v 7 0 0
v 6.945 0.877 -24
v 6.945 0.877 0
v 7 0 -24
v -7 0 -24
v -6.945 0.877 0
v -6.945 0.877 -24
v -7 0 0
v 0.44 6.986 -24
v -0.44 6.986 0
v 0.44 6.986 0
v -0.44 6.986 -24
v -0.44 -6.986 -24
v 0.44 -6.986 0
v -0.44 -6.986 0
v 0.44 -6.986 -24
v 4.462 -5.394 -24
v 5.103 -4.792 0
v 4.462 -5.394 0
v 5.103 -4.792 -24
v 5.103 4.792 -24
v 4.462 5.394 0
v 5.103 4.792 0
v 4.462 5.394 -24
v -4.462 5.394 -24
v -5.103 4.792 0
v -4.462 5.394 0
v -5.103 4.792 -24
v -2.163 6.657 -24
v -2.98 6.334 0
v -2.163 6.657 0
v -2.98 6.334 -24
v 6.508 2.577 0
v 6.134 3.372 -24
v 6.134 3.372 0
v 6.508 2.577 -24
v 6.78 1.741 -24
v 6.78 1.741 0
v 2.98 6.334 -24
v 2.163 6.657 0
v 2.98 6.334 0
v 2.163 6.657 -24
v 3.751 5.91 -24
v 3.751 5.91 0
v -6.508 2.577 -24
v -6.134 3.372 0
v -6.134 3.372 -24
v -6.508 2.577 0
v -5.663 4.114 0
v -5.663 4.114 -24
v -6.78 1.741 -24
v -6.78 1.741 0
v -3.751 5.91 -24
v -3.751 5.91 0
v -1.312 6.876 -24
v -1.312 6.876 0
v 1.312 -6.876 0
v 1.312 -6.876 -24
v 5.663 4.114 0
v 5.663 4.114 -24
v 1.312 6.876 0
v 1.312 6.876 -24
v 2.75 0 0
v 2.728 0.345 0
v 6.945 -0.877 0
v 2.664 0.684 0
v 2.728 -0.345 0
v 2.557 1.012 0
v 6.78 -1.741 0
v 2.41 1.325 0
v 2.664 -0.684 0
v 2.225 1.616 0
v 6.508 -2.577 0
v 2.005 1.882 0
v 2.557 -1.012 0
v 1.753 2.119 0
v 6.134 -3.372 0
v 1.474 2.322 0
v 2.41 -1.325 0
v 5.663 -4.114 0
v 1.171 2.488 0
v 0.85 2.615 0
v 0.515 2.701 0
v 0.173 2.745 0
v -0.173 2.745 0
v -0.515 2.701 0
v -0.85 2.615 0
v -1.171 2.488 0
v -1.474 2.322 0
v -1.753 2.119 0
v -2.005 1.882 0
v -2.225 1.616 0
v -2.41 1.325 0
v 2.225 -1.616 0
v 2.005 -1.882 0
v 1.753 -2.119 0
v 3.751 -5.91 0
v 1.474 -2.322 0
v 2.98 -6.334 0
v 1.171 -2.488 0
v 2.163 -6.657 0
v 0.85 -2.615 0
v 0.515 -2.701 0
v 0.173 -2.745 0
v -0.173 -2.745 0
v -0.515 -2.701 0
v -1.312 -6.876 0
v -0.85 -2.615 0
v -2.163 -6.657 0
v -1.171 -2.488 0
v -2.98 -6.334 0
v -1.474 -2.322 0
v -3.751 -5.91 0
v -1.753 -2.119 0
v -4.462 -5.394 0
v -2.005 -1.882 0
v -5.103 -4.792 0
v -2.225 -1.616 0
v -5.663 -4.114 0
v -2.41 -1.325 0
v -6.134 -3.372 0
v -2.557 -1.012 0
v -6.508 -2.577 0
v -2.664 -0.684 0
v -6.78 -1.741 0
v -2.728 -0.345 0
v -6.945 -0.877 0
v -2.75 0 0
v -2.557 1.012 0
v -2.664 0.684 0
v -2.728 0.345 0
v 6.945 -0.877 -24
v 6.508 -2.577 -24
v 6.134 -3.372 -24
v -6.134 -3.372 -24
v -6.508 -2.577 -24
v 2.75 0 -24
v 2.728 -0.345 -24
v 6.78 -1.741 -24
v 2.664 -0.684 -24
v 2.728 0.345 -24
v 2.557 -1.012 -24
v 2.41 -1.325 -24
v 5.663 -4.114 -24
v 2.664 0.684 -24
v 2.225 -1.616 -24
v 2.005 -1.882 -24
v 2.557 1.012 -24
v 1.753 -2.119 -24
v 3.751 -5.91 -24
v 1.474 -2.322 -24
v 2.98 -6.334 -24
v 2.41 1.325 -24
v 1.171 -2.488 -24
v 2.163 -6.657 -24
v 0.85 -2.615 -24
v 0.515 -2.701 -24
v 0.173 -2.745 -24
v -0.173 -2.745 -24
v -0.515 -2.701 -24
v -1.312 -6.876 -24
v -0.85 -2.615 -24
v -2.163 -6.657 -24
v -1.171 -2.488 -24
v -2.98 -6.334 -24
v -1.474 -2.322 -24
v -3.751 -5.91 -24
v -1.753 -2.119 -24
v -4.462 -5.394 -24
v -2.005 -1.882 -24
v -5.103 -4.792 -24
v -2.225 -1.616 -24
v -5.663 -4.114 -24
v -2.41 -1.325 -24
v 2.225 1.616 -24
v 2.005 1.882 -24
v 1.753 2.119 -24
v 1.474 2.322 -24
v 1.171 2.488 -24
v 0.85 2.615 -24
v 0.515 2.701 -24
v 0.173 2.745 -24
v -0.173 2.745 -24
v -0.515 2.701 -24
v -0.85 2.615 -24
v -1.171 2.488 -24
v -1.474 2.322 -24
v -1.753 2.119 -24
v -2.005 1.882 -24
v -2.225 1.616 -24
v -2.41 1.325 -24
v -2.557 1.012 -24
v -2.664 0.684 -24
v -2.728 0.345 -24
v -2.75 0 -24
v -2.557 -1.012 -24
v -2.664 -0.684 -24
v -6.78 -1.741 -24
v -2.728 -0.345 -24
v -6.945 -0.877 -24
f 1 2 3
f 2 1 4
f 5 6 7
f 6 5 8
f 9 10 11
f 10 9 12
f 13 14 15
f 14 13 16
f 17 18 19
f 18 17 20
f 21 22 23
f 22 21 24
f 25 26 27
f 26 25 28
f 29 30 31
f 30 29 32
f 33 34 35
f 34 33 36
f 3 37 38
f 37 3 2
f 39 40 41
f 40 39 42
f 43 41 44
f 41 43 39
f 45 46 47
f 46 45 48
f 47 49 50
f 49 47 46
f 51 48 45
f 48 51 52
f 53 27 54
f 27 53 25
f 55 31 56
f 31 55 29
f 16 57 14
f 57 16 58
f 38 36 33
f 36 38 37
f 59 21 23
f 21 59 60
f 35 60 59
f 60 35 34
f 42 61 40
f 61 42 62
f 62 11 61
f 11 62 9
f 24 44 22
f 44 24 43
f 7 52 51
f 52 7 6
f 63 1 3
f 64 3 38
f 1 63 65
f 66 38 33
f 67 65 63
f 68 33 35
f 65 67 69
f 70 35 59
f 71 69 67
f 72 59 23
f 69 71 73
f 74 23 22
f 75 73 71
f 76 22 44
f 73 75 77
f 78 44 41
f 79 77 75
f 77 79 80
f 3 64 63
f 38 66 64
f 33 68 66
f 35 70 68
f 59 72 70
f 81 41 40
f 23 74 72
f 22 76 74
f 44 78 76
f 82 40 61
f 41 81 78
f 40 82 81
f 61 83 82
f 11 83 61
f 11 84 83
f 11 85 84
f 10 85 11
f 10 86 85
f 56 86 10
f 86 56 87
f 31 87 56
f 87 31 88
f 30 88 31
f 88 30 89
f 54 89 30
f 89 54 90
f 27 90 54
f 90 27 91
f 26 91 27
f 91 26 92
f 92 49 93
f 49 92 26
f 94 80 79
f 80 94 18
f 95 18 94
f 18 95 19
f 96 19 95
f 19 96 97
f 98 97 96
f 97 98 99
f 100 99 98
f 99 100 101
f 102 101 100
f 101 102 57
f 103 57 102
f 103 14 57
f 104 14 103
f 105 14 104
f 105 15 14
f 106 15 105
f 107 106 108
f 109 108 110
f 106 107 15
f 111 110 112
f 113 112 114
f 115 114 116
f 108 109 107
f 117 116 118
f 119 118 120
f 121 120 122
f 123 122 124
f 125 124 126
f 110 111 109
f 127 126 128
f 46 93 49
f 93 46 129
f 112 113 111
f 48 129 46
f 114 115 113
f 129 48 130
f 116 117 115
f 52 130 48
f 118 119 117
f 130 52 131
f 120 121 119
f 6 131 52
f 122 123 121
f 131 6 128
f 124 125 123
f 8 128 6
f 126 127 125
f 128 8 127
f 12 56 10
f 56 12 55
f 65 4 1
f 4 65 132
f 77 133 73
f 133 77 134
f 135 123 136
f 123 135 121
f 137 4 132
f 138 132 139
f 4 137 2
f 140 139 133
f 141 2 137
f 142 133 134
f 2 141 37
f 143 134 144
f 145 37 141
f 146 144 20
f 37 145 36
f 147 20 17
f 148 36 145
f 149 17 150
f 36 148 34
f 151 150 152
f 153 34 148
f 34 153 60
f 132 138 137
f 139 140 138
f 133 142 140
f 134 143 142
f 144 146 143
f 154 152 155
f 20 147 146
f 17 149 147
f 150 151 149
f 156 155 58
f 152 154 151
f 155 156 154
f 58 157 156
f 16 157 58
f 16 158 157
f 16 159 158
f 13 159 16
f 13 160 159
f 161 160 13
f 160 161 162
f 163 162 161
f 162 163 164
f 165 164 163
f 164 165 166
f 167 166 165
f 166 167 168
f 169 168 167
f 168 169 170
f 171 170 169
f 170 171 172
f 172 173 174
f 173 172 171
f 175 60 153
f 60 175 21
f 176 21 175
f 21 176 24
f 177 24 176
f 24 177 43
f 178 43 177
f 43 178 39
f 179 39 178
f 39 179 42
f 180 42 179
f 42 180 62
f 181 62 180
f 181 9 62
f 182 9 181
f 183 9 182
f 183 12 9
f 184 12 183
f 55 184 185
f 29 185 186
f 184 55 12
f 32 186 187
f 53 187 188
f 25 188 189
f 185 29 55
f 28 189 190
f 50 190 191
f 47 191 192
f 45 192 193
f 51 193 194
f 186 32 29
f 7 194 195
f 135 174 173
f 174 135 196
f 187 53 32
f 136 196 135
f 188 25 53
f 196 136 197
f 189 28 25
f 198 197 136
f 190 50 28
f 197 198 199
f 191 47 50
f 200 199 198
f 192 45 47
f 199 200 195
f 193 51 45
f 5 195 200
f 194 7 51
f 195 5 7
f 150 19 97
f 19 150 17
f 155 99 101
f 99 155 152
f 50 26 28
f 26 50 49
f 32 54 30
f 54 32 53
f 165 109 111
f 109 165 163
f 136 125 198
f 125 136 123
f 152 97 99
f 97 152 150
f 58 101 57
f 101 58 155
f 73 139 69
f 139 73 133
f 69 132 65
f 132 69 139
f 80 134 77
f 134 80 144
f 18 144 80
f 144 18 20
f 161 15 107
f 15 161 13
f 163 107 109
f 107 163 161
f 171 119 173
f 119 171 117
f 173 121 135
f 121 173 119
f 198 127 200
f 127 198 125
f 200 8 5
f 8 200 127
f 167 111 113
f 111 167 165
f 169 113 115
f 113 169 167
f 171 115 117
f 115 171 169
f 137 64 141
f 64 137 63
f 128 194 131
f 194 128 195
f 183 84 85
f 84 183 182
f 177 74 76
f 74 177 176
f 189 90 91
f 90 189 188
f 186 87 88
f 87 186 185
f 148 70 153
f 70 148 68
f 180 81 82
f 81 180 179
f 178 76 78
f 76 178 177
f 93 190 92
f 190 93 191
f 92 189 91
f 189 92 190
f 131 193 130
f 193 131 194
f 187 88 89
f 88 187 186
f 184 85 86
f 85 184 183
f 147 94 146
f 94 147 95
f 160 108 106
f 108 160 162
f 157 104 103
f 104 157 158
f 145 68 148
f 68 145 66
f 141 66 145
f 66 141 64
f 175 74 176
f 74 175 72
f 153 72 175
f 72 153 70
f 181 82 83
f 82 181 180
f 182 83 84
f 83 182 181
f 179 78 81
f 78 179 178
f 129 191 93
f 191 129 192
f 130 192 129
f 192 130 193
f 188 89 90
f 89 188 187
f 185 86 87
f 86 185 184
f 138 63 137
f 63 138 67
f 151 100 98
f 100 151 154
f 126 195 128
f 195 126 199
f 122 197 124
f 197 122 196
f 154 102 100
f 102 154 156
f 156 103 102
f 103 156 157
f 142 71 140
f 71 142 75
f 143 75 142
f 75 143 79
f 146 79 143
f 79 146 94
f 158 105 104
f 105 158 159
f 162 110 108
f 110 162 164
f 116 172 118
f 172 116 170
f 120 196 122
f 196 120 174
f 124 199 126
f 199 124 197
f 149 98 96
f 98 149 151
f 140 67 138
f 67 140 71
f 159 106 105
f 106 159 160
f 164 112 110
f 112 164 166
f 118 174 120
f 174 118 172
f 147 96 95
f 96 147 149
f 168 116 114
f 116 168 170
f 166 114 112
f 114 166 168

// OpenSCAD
$fn = 50;


difference() {
	union() {
		translate(v = [0, 0, -24.0000000000]) {
			cylinder(h = 24, r = 7.0000000000);
		}
		cylinder(h = 0, r = 16.0000000000);
	}
	union() {
		#translate(v = [0, 0, -24]) {
			cylinder(h = 24, r = 2.7500000000);
		}
	}
}
